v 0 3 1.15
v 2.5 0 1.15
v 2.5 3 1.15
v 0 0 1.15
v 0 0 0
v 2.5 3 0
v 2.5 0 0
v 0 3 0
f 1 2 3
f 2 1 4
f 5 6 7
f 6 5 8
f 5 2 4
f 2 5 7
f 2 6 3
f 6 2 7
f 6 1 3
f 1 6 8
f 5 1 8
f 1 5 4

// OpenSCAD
/* Warning, this is a very basic generator with a lot of approximation 
input data : [TQFN, MAA, 2.5x3.0x1.15mm, 20, , A, C04-01053A]
generated by com.zoubworld.electronics.cad.model3d.Basic
Date : Sun Feb 15 10:50:49 CET 2026
*/

//body
color("black")
translate([0,0,0])
cube([2.5,3.0,1.15], center=false);
